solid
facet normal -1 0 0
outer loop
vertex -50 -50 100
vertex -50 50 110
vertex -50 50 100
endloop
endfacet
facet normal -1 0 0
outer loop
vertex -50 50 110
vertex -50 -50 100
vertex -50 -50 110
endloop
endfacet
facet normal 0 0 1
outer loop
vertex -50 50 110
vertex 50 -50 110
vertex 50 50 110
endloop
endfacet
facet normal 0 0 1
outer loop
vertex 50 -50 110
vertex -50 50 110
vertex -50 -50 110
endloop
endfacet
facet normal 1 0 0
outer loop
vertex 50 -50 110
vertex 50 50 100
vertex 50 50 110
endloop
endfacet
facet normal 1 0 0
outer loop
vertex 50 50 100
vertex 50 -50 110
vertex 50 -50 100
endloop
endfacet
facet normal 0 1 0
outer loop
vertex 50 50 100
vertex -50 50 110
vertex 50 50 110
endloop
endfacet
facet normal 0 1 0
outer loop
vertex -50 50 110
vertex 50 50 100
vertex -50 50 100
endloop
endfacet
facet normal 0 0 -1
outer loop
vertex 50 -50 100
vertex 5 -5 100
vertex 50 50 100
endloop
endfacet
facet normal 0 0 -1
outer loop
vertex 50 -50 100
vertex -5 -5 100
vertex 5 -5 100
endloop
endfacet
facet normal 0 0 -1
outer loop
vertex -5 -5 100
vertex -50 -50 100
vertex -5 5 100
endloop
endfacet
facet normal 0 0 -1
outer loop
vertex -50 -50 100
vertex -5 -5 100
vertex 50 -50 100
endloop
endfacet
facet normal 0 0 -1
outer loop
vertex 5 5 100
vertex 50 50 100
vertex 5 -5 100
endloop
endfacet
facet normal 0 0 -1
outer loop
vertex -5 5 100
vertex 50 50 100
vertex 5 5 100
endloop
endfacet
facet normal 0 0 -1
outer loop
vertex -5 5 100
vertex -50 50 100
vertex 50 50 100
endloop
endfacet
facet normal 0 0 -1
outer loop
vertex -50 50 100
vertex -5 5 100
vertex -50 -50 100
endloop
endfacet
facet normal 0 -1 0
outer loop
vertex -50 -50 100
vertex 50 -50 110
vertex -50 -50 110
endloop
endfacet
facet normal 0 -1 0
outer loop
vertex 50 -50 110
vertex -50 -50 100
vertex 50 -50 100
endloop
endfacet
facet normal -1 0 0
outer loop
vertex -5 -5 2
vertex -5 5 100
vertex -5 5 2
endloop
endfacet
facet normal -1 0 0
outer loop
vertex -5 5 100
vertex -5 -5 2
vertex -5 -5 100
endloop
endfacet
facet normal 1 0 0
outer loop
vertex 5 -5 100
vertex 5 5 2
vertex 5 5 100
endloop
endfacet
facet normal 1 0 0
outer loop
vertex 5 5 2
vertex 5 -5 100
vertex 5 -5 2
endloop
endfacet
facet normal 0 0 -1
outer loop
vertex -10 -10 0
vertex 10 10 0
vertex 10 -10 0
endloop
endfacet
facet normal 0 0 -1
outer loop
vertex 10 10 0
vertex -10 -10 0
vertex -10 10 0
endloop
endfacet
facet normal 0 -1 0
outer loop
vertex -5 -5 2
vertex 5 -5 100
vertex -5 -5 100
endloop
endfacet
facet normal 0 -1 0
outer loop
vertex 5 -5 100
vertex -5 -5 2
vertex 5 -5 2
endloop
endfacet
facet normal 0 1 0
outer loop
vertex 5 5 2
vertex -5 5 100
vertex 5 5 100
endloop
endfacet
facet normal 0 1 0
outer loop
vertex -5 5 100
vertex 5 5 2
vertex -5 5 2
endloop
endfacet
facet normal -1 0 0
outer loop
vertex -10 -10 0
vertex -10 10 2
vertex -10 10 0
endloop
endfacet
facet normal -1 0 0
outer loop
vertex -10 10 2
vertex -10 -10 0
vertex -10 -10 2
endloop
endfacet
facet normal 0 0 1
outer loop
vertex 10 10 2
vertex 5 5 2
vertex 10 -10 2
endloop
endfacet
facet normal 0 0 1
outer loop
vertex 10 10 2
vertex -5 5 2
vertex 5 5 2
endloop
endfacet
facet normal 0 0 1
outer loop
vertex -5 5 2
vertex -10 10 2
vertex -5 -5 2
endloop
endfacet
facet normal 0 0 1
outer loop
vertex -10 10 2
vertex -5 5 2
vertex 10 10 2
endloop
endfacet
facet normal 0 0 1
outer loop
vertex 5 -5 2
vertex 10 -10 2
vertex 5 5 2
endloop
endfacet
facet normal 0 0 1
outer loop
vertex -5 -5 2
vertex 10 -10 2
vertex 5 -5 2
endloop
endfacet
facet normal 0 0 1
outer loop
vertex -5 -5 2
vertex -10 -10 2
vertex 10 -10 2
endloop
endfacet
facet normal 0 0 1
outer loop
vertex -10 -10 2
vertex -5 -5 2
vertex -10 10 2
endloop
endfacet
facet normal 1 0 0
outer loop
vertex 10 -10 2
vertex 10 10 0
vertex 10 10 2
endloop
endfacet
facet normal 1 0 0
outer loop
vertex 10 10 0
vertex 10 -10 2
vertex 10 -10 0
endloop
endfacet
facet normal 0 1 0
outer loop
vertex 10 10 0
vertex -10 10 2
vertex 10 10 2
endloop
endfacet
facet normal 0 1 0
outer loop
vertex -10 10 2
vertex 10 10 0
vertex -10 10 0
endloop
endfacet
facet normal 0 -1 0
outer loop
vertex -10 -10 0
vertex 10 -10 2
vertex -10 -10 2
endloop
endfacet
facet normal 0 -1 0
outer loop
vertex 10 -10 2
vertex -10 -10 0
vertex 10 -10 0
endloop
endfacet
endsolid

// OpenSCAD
union(){
    cube(size=[0, 0, 0]);
    translate(v=[-50, -50, 100]){
        color(""){
            cube(size=[100, 100, 10]);
        };
    };
    translate(v=[-5, -5, 0]){
        color(""){
            cube(size=[10, 10, 100]);
        };
    };
    translate(v=[-10, -10, 0]){
        color(""){
            cube(size=[20, 20, 2]);
        };
    };
};
